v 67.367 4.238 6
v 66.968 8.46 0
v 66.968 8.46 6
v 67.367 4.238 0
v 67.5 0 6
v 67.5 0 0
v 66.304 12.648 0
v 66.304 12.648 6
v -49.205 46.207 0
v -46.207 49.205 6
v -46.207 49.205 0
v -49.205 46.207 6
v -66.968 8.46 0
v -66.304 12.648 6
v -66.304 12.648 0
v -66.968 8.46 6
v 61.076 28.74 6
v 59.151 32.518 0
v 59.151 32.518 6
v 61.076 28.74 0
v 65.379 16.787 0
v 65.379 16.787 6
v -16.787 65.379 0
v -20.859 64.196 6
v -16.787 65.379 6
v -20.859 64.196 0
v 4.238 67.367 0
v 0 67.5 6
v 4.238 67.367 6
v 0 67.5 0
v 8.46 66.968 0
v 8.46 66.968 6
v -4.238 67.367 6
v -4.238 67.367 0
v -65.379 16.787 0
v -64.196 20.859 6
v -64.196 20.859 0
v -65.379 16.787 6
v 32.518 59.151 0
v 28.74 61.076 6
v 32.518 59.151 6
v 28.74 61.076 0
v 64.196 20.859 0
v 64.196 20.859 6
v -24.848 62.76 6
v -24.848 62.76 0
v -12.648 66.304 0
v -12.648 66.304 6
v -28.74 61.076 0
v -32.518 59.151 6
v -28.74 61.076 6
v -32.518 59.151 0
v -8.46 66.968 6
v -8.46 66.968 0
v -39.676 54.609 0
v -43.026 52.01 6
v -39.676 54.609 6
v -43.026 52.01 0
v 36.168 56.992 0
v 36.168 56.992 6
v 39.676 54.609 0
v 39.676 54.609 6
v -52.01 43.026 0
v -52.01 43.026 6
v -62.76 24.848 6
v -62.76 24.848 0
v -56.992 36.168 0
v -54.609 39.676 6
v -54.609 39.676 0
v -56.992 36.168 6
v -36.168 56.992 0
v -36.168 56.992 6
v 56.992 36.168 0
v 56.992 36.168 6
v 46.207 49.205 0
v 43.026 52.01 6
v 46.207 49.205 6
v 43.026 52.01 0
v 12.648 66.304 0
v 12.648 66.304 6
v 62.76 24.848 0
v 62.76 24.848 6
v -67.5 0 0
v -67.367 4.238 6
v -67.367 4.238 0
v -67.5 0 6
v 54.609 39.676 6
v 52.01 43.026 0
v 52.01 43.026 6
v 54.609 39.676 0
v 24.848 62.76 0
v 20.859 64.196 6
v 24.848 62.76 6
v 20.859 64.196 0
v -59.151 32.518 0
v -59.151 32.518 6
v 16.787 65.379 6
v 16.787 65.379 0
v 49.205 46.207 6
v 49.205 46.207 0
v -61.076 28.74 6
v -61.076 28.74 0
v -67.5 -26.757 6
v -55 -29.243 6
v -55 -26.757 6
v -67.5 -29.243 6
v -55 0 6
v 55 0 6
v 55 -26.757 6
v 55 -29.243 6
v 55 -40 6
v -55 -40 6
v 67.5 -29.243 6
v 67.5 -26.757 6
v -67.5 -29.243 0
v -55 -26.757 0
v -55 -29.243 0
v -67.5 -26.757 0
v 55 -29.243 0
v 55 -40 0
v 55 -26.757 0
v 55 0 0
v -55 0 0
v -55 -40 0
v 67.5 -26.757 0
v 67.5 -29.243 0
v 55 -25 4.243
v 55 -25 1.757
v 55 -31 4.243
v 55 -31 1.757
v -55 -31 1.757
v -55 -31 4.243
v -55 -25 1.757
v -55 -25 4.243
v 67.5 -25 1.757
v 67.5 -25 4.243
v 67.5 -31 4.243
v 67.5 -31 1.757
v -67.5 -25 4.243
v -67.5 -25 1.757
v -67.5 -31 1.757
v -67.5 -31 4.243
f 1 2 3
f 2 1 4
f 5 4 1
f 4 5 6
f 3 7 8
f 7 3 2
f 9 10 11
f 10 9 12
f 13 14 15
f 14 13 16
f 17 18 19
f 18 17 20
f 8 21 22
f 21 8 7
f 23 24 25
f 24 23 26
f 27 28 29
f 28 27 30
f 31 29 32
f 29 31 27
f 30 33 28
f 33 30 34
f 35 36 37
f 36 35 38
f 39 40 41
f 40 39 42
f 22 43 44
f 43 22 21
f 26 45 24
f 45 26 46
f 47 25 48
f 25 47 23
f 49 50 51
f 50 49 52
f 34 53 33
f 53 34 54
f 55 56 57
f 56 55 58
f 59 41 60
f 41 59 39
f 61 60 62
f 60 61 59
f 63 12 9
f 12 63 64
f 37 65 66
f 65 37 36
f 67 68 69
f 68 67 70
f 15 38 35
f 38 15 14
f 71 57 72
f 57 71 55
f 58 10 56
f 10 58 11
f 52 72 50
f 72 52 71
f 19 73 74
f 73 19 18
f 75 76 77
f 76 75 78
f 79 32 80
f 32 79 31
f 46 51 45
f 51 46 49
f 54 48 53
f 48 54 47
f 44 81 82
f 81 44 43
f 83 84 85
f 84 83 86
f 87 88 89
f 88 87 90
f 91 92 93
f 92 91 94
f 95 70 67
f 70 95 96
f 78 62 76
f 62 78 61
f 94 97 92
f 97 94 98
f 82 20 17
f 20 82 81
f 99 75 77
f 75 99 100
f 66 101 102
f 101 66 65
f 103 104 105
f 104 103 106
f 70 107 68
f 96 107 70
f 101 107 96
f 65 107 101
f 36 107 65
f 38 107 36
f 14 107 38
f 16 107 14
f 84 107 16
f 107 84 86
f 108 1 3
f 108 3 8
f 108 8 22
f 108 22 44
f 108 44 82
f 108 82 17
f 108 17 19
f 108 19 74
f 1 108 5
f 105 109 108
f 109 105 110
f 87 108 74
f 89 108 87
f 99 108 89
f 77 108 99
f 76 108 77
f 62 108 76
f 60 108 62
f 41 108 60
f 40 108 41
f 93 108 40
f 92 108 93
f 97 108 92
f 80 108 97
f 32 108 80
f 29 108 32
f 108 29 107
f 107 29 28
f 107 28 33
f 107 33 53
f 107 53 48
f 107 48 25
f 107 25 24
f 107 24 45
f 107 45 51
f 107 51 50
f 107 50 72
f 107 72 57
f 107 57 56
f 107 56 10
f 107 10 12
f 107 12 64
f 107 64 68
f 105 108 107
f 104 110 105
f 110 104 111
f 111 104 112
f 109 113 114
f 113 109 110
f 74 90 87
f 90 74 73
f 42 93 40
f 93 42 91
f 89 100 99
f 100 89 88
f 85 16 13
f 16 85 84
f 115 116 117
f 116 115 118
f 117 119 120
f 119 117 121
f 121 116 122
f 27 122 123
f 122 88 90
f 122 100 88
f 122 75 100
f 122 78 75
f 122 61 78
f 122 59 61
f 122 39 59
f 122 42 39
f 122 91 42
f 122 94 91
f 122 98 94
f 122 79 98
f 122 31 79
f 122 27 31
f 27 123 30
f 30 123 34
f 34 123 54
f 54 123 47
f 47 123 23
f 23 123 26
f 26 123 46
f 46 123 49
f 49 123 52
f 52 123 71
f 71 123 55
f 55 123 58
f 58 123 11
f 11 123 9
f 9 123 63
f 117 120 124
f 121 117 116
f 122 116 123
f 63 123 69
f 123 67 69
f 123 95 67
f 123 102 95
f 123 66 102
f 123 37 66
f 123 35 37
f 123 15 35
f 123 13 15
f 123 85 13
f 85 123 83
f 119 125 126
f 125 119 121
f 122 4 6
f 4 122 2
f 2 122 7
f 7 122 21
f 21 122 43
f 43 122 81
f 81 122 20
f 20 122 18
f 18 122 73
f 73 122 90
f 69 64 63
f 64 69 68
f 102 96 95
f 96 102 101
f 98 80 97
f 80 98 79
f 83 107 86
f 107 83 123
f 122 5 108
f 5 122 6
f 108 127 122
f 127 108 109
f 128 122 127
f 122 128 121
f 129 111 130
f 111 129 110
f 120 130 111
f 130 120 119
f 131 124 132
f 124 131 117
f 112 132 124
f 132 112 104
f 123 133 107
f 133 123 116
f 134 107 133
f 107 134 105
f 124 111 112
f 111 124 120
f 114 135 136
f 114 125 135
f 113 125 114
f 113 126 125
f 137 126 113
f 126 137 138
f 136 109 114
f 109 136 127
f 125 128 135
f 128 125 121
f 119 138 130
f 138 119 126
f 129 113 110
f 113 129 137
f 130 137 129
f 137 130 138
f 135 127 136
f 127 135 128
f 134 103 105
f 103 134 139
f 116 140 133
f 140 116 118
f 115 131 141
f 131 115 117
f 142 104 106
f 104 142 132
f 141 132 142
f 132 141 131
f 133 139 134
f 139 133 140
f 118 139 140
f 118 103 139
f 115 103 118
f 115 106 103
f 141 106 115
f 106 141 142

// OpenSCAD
// Salt Box Lid Replacement - Octagonal Pins
// All dimensions are in millimeters

$fn = 100; // High resolution for the main curves

// --- Dimensions ---
lid_thickness = 6;
rect_width = 110;
rect_depth = 40;
semi_circle_diameter = 135;
pin_length = 12.5;
pin_face_to_face = 6; // Desired flat-to-flat thickness to match the lid

pin_y_offset = 28; // Updated measurement

// --- Math for Perfect Octagons ---
// OpenSCAD draws polygons by their points. We calculate the slightly larger 
// point-to-point diameter needed to make the flat sides exactly 6mm apart.
pin_outer_diameter = pin_face_to_face / cos(22.5);

// --- Model ---
union() {
    // Semi-circle front part
    intersection() {
        cylinder(h=lid_thickness, d=semi_circle_diameter);
        // Bounding box to slice the cylinder in half
        translate([-semi_circle_diameter/2, 0, 0])
            cube([semi_circle_diameter, semi_circle_diameter/2, lid_thickness]);
    }

    // Rectangular back part
    translate([-rect_width/2, -rect_depth, 0])
        cube([rect_width, rect_depth, lid_thickness]);

    // Right Hinge Pin (Octagon)
    translate([rect_width/2, -pin_y_offset, lid_thickness/2])
        rotate([0, 90, 0])
        rotate([0, 0, 22.5]) // Rotate to put a flat side perfectly facing down
        cylinder(h=pin_length, d=pin_outer_diameter, $fn=8);

    // Left Hinge Pin (Octagon)
    translate([-rect_width/2 - pin_length, -pin_y_offset, lid_thickness/2])
        rotate([0, 90, 0])
        rotate([0, 0, 22.5]) // Rotate to put a flat side perfectly facing down
        cylinder(h=pin_length, d=pin_outer_diameter, $fn=8);
}
